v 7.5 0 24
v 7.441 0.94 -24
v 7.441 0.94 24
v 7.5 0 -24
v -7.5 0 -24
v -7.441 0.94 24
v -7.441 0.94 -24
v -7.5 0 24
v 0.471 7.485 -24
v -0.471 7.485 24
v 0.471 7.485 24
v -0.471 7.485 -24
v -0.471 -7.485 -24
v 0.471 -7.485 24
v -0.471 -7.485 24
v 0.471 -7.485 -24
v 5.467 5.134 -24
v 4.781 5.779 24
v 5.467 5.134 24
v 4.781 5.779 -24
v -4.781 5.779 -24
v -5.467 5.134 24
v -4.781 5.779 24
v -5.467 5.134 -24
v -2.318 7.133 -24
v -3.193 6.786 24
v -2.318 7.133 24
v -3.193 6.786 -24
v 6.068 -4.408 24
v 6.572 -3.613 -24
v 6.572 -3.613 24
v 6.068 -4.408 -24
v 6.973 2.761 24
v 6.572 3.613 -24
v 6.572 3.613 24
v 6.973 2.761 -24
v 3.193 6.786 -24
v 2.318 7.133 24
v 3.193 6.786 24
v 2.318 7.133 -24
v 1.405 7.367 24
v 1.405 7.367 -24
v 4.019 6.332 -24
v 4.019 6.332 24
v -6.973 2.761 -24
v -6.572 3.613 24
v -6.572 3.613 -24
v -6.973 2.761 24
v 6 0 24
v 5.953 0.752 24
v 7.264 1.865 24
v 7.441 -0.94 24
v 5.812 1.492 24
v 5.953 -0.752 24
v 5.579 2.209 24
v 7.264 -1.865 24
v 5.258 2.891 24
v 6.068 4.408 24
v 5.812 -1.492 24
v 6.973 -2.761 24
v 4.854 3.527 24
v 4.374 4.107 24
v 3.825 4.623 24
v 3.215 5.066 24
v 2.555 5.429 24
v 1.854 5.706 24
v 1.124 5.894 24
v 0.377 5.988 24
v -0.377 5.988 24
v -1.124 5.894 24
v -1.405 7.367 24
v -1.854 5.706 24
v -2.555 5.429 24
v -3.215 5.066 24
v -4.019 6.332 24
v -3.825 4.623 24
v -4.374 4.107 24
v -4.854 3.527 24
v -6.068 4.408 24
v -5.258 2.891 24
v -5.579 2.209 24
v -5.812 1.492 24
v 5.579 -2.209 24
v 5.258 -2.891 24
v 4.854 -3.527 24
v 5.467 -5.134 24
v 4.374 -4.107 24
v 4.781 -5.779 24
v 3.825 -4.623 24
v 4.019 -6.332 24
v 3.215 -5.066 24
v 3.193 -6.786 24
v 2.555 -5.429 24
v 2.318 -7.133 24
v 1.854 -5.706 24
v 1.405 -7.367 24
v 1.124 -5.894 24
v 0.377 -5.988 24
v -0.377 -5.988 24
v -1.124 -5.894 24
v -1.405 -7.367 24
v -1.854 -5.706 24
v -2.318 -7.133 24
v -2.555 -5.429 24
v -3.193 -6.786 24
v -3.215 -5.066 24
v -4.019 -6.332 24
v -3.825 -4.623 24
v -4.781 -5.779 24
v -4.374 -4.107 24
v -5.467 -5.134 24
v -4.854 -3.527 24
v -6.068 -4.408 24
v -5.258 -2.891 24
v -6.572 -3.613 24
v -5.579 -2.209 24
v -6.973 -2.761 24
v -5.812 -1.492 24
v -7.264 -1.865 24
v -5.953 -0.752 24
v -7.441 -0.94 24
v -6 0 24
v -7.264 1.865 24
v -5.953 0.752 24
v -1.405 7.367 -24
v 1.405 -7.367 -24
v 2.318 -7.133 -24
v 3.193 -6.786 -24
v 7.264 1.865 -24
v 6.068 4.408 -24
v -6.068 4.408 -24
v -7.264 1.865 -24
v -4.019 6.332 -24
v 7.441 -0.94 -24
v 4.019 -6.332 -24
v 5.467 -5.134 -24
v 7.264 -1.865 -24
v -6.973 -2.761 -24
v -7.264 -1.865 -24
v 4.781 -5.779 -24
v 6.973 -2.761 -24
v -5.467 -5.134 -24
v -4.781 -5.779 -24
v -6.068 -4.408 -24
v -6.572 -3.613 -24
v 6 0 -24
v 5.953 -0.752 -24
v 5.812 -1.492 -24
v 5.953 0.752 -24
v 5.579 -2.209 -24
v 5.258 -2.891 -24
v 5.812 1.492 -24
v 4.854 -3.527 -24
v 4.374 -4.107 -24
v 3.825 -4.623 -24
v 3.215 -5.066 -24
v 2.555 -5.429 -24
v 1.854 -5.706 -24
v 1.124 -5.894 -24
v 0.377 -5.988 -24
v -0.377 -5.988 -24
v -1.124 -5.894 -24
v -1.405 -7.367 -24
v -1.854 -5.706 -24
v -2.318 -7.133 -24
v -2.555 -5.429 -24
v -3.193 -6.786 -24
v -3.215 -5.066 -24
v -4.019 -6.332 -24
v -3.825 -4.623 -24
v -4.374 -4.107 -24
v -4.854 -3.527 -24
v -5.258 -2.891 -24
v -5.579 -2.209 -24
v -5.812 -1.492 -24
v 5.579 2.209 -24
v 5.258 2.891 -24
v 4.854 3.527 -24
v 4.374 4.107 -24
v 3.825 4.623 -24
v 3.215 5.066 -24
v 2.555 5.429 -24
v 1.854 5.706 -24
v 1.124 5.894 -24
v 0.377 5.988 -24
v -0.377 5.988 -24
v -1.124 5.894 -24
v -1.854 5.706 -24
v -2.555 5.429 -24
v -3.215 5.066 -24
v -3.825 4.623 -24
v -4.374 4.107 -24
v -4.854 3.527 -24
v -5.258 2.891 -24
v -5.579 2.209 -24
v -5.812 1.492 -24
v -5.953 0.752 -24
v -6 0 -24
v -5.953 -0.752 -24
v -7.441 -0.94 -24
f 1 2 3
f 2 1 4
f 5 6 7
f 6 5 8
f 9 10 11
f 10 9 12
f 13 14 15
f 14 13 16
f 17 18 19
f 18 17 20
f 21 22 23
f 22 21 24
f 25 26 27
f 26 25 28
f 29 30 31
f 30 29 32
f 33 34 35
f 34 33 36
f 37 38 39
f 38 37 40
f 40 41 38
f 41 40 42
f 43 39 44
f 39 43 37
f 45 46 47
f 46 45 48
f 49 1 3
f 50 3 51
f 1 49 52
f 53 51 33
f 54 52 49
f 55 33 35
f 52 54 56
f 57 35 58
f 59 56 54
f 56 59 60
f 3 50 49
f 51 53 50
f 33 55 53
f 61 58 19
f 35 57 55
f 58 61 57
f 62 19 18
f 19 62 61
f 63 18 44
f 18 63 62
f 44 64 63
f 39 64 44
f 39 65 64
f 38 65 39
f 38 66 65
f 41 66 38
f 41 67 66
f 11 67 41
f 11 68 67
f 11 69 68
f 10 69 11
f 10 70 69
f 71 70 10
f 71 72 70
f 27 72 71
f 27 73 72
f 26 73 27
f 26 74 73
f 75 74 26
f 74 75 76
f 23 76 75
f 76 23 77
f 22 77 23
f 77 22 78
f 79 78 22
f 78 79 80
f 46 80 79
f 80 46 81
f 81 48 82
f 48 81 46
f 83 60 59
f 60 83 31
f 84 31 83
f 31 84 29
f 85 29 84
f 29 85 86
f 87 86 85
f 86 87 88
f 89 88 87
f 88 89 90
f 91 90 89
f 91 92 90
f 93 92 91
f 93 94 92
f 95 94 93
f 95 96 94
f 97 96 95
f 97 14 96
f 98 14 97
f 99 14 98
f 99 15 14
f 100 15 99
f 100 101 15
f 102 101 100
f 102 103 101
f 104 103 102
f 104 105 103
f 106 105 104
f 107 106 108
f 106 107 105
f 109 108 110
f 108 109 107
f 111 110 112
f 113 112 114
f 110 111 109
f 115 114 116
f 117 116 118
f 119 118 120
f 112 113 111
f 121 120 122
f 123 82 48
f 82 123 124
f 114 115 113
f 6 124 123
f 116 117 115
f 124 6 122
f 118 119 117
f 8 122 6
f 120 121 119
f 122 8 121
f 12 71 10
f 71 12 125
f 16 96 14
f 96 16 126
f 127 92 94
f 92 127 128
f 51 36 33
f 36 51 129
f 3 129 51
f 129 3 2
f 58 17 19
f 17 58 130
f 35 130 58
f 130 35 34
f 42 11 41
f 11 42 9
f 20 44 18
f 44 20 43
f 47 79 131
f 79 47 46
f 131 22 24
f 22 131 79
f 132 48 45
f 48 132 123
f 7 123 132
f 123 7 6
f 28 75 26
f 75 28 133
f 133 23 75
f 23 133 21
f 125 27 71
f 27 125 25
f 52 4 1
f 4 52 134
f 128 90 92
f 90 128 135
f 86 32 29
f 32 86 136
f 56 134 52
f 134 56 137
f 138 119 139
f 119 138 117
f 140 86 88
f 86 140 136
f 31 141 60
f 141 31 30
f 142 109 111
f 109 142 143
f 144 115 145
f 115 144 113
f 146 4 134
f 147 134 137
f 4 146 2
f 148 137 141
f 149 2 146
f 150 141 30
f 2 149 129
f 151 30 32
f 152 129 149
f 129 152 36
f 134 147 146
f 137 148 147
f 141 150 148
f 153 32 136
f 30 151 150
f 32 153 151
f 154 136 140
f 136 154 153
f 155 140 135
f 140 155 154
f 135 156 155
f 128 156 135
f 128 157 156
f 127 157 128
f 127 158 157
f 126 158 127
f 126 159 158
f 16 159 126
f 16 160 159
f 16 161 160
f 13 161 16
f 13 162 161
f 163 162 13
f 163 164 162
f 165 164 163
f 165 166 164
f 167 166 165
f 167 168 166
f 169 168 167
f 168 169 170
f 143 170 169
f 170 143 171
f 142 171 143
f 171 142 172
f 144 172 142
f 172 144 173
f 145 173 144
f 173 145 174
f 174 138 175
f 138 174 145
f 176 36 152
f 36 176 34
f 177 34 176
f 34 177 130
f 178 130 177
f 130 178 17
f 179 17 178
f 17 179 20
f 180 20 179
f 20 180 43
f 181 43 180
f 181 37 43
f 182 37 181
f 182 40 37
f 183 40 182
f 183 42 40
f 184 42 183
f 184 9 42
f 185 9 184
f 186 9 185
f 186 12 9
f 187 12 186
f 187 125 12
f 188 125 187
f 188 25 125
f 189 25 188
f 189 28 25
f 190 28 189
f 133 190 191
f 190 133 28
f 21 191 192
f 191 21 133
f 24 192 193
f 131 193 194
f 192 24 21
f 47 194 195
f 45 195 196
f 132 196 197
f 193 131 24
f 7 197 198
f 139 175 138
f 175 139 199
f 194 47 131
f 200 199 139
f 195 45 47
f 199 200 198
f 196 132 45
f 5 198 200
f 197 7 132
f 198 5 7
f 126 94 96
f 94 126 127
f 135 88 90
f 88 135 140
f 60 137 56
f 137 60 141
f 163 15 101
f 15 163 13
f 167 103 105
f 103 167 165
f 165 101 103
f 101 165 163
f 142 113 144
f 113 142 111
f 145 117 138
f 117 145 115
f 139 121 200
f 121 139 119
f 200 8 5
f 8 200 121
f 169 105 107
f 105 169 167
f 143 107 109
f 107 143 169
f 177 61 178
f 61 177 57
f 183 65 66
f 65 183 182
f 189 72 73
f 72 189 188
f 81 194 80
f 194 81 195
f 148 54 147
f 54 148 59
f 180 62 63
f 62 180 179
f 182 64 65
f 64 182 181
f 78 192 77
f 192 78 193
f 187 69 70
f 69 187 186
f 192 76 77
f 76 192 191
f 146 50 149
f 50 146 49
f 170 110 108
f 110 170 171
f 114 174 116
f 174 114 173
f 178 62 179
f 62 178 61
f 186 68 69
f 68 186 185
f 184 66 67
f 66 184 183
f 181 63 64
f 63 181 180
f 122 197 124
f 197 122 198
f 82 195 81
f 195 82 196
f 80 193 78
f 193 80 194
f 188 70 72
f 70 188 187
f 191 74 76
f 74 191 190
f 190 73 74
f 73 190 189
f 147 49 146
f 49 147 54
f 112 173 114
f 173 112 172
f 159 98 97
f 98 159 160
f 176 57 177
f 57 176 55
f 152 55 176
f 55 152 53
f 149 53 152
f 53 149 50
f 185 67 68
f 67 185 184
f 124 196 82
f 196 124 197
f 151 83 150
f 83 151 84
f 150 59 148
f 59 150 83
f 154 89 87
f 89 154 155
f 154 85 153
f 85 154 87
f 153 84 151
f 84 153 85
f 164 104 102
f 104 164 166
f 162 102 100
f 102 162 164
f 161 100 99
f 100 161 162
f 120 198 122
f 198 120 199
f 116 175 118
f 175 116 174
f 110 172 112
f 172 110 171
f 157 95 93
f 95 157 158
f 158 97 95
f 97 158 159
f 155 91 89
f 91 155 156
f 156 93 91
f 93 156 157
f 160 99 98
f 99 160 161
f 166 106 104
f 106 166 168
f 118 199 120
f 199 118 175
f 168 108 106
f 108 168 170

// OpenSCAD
$fn = 50;


difference() {
	union() {
		translate(v = [0, 0, -24.0000000000]) {
			cylinder(h = 48, r = 7.5000000000);
		}
	}
	union() {
		translate(v = [0, 0, -100.0000000000]) {
			cylinder(h = 200, r = 6);
		}
	}
}
